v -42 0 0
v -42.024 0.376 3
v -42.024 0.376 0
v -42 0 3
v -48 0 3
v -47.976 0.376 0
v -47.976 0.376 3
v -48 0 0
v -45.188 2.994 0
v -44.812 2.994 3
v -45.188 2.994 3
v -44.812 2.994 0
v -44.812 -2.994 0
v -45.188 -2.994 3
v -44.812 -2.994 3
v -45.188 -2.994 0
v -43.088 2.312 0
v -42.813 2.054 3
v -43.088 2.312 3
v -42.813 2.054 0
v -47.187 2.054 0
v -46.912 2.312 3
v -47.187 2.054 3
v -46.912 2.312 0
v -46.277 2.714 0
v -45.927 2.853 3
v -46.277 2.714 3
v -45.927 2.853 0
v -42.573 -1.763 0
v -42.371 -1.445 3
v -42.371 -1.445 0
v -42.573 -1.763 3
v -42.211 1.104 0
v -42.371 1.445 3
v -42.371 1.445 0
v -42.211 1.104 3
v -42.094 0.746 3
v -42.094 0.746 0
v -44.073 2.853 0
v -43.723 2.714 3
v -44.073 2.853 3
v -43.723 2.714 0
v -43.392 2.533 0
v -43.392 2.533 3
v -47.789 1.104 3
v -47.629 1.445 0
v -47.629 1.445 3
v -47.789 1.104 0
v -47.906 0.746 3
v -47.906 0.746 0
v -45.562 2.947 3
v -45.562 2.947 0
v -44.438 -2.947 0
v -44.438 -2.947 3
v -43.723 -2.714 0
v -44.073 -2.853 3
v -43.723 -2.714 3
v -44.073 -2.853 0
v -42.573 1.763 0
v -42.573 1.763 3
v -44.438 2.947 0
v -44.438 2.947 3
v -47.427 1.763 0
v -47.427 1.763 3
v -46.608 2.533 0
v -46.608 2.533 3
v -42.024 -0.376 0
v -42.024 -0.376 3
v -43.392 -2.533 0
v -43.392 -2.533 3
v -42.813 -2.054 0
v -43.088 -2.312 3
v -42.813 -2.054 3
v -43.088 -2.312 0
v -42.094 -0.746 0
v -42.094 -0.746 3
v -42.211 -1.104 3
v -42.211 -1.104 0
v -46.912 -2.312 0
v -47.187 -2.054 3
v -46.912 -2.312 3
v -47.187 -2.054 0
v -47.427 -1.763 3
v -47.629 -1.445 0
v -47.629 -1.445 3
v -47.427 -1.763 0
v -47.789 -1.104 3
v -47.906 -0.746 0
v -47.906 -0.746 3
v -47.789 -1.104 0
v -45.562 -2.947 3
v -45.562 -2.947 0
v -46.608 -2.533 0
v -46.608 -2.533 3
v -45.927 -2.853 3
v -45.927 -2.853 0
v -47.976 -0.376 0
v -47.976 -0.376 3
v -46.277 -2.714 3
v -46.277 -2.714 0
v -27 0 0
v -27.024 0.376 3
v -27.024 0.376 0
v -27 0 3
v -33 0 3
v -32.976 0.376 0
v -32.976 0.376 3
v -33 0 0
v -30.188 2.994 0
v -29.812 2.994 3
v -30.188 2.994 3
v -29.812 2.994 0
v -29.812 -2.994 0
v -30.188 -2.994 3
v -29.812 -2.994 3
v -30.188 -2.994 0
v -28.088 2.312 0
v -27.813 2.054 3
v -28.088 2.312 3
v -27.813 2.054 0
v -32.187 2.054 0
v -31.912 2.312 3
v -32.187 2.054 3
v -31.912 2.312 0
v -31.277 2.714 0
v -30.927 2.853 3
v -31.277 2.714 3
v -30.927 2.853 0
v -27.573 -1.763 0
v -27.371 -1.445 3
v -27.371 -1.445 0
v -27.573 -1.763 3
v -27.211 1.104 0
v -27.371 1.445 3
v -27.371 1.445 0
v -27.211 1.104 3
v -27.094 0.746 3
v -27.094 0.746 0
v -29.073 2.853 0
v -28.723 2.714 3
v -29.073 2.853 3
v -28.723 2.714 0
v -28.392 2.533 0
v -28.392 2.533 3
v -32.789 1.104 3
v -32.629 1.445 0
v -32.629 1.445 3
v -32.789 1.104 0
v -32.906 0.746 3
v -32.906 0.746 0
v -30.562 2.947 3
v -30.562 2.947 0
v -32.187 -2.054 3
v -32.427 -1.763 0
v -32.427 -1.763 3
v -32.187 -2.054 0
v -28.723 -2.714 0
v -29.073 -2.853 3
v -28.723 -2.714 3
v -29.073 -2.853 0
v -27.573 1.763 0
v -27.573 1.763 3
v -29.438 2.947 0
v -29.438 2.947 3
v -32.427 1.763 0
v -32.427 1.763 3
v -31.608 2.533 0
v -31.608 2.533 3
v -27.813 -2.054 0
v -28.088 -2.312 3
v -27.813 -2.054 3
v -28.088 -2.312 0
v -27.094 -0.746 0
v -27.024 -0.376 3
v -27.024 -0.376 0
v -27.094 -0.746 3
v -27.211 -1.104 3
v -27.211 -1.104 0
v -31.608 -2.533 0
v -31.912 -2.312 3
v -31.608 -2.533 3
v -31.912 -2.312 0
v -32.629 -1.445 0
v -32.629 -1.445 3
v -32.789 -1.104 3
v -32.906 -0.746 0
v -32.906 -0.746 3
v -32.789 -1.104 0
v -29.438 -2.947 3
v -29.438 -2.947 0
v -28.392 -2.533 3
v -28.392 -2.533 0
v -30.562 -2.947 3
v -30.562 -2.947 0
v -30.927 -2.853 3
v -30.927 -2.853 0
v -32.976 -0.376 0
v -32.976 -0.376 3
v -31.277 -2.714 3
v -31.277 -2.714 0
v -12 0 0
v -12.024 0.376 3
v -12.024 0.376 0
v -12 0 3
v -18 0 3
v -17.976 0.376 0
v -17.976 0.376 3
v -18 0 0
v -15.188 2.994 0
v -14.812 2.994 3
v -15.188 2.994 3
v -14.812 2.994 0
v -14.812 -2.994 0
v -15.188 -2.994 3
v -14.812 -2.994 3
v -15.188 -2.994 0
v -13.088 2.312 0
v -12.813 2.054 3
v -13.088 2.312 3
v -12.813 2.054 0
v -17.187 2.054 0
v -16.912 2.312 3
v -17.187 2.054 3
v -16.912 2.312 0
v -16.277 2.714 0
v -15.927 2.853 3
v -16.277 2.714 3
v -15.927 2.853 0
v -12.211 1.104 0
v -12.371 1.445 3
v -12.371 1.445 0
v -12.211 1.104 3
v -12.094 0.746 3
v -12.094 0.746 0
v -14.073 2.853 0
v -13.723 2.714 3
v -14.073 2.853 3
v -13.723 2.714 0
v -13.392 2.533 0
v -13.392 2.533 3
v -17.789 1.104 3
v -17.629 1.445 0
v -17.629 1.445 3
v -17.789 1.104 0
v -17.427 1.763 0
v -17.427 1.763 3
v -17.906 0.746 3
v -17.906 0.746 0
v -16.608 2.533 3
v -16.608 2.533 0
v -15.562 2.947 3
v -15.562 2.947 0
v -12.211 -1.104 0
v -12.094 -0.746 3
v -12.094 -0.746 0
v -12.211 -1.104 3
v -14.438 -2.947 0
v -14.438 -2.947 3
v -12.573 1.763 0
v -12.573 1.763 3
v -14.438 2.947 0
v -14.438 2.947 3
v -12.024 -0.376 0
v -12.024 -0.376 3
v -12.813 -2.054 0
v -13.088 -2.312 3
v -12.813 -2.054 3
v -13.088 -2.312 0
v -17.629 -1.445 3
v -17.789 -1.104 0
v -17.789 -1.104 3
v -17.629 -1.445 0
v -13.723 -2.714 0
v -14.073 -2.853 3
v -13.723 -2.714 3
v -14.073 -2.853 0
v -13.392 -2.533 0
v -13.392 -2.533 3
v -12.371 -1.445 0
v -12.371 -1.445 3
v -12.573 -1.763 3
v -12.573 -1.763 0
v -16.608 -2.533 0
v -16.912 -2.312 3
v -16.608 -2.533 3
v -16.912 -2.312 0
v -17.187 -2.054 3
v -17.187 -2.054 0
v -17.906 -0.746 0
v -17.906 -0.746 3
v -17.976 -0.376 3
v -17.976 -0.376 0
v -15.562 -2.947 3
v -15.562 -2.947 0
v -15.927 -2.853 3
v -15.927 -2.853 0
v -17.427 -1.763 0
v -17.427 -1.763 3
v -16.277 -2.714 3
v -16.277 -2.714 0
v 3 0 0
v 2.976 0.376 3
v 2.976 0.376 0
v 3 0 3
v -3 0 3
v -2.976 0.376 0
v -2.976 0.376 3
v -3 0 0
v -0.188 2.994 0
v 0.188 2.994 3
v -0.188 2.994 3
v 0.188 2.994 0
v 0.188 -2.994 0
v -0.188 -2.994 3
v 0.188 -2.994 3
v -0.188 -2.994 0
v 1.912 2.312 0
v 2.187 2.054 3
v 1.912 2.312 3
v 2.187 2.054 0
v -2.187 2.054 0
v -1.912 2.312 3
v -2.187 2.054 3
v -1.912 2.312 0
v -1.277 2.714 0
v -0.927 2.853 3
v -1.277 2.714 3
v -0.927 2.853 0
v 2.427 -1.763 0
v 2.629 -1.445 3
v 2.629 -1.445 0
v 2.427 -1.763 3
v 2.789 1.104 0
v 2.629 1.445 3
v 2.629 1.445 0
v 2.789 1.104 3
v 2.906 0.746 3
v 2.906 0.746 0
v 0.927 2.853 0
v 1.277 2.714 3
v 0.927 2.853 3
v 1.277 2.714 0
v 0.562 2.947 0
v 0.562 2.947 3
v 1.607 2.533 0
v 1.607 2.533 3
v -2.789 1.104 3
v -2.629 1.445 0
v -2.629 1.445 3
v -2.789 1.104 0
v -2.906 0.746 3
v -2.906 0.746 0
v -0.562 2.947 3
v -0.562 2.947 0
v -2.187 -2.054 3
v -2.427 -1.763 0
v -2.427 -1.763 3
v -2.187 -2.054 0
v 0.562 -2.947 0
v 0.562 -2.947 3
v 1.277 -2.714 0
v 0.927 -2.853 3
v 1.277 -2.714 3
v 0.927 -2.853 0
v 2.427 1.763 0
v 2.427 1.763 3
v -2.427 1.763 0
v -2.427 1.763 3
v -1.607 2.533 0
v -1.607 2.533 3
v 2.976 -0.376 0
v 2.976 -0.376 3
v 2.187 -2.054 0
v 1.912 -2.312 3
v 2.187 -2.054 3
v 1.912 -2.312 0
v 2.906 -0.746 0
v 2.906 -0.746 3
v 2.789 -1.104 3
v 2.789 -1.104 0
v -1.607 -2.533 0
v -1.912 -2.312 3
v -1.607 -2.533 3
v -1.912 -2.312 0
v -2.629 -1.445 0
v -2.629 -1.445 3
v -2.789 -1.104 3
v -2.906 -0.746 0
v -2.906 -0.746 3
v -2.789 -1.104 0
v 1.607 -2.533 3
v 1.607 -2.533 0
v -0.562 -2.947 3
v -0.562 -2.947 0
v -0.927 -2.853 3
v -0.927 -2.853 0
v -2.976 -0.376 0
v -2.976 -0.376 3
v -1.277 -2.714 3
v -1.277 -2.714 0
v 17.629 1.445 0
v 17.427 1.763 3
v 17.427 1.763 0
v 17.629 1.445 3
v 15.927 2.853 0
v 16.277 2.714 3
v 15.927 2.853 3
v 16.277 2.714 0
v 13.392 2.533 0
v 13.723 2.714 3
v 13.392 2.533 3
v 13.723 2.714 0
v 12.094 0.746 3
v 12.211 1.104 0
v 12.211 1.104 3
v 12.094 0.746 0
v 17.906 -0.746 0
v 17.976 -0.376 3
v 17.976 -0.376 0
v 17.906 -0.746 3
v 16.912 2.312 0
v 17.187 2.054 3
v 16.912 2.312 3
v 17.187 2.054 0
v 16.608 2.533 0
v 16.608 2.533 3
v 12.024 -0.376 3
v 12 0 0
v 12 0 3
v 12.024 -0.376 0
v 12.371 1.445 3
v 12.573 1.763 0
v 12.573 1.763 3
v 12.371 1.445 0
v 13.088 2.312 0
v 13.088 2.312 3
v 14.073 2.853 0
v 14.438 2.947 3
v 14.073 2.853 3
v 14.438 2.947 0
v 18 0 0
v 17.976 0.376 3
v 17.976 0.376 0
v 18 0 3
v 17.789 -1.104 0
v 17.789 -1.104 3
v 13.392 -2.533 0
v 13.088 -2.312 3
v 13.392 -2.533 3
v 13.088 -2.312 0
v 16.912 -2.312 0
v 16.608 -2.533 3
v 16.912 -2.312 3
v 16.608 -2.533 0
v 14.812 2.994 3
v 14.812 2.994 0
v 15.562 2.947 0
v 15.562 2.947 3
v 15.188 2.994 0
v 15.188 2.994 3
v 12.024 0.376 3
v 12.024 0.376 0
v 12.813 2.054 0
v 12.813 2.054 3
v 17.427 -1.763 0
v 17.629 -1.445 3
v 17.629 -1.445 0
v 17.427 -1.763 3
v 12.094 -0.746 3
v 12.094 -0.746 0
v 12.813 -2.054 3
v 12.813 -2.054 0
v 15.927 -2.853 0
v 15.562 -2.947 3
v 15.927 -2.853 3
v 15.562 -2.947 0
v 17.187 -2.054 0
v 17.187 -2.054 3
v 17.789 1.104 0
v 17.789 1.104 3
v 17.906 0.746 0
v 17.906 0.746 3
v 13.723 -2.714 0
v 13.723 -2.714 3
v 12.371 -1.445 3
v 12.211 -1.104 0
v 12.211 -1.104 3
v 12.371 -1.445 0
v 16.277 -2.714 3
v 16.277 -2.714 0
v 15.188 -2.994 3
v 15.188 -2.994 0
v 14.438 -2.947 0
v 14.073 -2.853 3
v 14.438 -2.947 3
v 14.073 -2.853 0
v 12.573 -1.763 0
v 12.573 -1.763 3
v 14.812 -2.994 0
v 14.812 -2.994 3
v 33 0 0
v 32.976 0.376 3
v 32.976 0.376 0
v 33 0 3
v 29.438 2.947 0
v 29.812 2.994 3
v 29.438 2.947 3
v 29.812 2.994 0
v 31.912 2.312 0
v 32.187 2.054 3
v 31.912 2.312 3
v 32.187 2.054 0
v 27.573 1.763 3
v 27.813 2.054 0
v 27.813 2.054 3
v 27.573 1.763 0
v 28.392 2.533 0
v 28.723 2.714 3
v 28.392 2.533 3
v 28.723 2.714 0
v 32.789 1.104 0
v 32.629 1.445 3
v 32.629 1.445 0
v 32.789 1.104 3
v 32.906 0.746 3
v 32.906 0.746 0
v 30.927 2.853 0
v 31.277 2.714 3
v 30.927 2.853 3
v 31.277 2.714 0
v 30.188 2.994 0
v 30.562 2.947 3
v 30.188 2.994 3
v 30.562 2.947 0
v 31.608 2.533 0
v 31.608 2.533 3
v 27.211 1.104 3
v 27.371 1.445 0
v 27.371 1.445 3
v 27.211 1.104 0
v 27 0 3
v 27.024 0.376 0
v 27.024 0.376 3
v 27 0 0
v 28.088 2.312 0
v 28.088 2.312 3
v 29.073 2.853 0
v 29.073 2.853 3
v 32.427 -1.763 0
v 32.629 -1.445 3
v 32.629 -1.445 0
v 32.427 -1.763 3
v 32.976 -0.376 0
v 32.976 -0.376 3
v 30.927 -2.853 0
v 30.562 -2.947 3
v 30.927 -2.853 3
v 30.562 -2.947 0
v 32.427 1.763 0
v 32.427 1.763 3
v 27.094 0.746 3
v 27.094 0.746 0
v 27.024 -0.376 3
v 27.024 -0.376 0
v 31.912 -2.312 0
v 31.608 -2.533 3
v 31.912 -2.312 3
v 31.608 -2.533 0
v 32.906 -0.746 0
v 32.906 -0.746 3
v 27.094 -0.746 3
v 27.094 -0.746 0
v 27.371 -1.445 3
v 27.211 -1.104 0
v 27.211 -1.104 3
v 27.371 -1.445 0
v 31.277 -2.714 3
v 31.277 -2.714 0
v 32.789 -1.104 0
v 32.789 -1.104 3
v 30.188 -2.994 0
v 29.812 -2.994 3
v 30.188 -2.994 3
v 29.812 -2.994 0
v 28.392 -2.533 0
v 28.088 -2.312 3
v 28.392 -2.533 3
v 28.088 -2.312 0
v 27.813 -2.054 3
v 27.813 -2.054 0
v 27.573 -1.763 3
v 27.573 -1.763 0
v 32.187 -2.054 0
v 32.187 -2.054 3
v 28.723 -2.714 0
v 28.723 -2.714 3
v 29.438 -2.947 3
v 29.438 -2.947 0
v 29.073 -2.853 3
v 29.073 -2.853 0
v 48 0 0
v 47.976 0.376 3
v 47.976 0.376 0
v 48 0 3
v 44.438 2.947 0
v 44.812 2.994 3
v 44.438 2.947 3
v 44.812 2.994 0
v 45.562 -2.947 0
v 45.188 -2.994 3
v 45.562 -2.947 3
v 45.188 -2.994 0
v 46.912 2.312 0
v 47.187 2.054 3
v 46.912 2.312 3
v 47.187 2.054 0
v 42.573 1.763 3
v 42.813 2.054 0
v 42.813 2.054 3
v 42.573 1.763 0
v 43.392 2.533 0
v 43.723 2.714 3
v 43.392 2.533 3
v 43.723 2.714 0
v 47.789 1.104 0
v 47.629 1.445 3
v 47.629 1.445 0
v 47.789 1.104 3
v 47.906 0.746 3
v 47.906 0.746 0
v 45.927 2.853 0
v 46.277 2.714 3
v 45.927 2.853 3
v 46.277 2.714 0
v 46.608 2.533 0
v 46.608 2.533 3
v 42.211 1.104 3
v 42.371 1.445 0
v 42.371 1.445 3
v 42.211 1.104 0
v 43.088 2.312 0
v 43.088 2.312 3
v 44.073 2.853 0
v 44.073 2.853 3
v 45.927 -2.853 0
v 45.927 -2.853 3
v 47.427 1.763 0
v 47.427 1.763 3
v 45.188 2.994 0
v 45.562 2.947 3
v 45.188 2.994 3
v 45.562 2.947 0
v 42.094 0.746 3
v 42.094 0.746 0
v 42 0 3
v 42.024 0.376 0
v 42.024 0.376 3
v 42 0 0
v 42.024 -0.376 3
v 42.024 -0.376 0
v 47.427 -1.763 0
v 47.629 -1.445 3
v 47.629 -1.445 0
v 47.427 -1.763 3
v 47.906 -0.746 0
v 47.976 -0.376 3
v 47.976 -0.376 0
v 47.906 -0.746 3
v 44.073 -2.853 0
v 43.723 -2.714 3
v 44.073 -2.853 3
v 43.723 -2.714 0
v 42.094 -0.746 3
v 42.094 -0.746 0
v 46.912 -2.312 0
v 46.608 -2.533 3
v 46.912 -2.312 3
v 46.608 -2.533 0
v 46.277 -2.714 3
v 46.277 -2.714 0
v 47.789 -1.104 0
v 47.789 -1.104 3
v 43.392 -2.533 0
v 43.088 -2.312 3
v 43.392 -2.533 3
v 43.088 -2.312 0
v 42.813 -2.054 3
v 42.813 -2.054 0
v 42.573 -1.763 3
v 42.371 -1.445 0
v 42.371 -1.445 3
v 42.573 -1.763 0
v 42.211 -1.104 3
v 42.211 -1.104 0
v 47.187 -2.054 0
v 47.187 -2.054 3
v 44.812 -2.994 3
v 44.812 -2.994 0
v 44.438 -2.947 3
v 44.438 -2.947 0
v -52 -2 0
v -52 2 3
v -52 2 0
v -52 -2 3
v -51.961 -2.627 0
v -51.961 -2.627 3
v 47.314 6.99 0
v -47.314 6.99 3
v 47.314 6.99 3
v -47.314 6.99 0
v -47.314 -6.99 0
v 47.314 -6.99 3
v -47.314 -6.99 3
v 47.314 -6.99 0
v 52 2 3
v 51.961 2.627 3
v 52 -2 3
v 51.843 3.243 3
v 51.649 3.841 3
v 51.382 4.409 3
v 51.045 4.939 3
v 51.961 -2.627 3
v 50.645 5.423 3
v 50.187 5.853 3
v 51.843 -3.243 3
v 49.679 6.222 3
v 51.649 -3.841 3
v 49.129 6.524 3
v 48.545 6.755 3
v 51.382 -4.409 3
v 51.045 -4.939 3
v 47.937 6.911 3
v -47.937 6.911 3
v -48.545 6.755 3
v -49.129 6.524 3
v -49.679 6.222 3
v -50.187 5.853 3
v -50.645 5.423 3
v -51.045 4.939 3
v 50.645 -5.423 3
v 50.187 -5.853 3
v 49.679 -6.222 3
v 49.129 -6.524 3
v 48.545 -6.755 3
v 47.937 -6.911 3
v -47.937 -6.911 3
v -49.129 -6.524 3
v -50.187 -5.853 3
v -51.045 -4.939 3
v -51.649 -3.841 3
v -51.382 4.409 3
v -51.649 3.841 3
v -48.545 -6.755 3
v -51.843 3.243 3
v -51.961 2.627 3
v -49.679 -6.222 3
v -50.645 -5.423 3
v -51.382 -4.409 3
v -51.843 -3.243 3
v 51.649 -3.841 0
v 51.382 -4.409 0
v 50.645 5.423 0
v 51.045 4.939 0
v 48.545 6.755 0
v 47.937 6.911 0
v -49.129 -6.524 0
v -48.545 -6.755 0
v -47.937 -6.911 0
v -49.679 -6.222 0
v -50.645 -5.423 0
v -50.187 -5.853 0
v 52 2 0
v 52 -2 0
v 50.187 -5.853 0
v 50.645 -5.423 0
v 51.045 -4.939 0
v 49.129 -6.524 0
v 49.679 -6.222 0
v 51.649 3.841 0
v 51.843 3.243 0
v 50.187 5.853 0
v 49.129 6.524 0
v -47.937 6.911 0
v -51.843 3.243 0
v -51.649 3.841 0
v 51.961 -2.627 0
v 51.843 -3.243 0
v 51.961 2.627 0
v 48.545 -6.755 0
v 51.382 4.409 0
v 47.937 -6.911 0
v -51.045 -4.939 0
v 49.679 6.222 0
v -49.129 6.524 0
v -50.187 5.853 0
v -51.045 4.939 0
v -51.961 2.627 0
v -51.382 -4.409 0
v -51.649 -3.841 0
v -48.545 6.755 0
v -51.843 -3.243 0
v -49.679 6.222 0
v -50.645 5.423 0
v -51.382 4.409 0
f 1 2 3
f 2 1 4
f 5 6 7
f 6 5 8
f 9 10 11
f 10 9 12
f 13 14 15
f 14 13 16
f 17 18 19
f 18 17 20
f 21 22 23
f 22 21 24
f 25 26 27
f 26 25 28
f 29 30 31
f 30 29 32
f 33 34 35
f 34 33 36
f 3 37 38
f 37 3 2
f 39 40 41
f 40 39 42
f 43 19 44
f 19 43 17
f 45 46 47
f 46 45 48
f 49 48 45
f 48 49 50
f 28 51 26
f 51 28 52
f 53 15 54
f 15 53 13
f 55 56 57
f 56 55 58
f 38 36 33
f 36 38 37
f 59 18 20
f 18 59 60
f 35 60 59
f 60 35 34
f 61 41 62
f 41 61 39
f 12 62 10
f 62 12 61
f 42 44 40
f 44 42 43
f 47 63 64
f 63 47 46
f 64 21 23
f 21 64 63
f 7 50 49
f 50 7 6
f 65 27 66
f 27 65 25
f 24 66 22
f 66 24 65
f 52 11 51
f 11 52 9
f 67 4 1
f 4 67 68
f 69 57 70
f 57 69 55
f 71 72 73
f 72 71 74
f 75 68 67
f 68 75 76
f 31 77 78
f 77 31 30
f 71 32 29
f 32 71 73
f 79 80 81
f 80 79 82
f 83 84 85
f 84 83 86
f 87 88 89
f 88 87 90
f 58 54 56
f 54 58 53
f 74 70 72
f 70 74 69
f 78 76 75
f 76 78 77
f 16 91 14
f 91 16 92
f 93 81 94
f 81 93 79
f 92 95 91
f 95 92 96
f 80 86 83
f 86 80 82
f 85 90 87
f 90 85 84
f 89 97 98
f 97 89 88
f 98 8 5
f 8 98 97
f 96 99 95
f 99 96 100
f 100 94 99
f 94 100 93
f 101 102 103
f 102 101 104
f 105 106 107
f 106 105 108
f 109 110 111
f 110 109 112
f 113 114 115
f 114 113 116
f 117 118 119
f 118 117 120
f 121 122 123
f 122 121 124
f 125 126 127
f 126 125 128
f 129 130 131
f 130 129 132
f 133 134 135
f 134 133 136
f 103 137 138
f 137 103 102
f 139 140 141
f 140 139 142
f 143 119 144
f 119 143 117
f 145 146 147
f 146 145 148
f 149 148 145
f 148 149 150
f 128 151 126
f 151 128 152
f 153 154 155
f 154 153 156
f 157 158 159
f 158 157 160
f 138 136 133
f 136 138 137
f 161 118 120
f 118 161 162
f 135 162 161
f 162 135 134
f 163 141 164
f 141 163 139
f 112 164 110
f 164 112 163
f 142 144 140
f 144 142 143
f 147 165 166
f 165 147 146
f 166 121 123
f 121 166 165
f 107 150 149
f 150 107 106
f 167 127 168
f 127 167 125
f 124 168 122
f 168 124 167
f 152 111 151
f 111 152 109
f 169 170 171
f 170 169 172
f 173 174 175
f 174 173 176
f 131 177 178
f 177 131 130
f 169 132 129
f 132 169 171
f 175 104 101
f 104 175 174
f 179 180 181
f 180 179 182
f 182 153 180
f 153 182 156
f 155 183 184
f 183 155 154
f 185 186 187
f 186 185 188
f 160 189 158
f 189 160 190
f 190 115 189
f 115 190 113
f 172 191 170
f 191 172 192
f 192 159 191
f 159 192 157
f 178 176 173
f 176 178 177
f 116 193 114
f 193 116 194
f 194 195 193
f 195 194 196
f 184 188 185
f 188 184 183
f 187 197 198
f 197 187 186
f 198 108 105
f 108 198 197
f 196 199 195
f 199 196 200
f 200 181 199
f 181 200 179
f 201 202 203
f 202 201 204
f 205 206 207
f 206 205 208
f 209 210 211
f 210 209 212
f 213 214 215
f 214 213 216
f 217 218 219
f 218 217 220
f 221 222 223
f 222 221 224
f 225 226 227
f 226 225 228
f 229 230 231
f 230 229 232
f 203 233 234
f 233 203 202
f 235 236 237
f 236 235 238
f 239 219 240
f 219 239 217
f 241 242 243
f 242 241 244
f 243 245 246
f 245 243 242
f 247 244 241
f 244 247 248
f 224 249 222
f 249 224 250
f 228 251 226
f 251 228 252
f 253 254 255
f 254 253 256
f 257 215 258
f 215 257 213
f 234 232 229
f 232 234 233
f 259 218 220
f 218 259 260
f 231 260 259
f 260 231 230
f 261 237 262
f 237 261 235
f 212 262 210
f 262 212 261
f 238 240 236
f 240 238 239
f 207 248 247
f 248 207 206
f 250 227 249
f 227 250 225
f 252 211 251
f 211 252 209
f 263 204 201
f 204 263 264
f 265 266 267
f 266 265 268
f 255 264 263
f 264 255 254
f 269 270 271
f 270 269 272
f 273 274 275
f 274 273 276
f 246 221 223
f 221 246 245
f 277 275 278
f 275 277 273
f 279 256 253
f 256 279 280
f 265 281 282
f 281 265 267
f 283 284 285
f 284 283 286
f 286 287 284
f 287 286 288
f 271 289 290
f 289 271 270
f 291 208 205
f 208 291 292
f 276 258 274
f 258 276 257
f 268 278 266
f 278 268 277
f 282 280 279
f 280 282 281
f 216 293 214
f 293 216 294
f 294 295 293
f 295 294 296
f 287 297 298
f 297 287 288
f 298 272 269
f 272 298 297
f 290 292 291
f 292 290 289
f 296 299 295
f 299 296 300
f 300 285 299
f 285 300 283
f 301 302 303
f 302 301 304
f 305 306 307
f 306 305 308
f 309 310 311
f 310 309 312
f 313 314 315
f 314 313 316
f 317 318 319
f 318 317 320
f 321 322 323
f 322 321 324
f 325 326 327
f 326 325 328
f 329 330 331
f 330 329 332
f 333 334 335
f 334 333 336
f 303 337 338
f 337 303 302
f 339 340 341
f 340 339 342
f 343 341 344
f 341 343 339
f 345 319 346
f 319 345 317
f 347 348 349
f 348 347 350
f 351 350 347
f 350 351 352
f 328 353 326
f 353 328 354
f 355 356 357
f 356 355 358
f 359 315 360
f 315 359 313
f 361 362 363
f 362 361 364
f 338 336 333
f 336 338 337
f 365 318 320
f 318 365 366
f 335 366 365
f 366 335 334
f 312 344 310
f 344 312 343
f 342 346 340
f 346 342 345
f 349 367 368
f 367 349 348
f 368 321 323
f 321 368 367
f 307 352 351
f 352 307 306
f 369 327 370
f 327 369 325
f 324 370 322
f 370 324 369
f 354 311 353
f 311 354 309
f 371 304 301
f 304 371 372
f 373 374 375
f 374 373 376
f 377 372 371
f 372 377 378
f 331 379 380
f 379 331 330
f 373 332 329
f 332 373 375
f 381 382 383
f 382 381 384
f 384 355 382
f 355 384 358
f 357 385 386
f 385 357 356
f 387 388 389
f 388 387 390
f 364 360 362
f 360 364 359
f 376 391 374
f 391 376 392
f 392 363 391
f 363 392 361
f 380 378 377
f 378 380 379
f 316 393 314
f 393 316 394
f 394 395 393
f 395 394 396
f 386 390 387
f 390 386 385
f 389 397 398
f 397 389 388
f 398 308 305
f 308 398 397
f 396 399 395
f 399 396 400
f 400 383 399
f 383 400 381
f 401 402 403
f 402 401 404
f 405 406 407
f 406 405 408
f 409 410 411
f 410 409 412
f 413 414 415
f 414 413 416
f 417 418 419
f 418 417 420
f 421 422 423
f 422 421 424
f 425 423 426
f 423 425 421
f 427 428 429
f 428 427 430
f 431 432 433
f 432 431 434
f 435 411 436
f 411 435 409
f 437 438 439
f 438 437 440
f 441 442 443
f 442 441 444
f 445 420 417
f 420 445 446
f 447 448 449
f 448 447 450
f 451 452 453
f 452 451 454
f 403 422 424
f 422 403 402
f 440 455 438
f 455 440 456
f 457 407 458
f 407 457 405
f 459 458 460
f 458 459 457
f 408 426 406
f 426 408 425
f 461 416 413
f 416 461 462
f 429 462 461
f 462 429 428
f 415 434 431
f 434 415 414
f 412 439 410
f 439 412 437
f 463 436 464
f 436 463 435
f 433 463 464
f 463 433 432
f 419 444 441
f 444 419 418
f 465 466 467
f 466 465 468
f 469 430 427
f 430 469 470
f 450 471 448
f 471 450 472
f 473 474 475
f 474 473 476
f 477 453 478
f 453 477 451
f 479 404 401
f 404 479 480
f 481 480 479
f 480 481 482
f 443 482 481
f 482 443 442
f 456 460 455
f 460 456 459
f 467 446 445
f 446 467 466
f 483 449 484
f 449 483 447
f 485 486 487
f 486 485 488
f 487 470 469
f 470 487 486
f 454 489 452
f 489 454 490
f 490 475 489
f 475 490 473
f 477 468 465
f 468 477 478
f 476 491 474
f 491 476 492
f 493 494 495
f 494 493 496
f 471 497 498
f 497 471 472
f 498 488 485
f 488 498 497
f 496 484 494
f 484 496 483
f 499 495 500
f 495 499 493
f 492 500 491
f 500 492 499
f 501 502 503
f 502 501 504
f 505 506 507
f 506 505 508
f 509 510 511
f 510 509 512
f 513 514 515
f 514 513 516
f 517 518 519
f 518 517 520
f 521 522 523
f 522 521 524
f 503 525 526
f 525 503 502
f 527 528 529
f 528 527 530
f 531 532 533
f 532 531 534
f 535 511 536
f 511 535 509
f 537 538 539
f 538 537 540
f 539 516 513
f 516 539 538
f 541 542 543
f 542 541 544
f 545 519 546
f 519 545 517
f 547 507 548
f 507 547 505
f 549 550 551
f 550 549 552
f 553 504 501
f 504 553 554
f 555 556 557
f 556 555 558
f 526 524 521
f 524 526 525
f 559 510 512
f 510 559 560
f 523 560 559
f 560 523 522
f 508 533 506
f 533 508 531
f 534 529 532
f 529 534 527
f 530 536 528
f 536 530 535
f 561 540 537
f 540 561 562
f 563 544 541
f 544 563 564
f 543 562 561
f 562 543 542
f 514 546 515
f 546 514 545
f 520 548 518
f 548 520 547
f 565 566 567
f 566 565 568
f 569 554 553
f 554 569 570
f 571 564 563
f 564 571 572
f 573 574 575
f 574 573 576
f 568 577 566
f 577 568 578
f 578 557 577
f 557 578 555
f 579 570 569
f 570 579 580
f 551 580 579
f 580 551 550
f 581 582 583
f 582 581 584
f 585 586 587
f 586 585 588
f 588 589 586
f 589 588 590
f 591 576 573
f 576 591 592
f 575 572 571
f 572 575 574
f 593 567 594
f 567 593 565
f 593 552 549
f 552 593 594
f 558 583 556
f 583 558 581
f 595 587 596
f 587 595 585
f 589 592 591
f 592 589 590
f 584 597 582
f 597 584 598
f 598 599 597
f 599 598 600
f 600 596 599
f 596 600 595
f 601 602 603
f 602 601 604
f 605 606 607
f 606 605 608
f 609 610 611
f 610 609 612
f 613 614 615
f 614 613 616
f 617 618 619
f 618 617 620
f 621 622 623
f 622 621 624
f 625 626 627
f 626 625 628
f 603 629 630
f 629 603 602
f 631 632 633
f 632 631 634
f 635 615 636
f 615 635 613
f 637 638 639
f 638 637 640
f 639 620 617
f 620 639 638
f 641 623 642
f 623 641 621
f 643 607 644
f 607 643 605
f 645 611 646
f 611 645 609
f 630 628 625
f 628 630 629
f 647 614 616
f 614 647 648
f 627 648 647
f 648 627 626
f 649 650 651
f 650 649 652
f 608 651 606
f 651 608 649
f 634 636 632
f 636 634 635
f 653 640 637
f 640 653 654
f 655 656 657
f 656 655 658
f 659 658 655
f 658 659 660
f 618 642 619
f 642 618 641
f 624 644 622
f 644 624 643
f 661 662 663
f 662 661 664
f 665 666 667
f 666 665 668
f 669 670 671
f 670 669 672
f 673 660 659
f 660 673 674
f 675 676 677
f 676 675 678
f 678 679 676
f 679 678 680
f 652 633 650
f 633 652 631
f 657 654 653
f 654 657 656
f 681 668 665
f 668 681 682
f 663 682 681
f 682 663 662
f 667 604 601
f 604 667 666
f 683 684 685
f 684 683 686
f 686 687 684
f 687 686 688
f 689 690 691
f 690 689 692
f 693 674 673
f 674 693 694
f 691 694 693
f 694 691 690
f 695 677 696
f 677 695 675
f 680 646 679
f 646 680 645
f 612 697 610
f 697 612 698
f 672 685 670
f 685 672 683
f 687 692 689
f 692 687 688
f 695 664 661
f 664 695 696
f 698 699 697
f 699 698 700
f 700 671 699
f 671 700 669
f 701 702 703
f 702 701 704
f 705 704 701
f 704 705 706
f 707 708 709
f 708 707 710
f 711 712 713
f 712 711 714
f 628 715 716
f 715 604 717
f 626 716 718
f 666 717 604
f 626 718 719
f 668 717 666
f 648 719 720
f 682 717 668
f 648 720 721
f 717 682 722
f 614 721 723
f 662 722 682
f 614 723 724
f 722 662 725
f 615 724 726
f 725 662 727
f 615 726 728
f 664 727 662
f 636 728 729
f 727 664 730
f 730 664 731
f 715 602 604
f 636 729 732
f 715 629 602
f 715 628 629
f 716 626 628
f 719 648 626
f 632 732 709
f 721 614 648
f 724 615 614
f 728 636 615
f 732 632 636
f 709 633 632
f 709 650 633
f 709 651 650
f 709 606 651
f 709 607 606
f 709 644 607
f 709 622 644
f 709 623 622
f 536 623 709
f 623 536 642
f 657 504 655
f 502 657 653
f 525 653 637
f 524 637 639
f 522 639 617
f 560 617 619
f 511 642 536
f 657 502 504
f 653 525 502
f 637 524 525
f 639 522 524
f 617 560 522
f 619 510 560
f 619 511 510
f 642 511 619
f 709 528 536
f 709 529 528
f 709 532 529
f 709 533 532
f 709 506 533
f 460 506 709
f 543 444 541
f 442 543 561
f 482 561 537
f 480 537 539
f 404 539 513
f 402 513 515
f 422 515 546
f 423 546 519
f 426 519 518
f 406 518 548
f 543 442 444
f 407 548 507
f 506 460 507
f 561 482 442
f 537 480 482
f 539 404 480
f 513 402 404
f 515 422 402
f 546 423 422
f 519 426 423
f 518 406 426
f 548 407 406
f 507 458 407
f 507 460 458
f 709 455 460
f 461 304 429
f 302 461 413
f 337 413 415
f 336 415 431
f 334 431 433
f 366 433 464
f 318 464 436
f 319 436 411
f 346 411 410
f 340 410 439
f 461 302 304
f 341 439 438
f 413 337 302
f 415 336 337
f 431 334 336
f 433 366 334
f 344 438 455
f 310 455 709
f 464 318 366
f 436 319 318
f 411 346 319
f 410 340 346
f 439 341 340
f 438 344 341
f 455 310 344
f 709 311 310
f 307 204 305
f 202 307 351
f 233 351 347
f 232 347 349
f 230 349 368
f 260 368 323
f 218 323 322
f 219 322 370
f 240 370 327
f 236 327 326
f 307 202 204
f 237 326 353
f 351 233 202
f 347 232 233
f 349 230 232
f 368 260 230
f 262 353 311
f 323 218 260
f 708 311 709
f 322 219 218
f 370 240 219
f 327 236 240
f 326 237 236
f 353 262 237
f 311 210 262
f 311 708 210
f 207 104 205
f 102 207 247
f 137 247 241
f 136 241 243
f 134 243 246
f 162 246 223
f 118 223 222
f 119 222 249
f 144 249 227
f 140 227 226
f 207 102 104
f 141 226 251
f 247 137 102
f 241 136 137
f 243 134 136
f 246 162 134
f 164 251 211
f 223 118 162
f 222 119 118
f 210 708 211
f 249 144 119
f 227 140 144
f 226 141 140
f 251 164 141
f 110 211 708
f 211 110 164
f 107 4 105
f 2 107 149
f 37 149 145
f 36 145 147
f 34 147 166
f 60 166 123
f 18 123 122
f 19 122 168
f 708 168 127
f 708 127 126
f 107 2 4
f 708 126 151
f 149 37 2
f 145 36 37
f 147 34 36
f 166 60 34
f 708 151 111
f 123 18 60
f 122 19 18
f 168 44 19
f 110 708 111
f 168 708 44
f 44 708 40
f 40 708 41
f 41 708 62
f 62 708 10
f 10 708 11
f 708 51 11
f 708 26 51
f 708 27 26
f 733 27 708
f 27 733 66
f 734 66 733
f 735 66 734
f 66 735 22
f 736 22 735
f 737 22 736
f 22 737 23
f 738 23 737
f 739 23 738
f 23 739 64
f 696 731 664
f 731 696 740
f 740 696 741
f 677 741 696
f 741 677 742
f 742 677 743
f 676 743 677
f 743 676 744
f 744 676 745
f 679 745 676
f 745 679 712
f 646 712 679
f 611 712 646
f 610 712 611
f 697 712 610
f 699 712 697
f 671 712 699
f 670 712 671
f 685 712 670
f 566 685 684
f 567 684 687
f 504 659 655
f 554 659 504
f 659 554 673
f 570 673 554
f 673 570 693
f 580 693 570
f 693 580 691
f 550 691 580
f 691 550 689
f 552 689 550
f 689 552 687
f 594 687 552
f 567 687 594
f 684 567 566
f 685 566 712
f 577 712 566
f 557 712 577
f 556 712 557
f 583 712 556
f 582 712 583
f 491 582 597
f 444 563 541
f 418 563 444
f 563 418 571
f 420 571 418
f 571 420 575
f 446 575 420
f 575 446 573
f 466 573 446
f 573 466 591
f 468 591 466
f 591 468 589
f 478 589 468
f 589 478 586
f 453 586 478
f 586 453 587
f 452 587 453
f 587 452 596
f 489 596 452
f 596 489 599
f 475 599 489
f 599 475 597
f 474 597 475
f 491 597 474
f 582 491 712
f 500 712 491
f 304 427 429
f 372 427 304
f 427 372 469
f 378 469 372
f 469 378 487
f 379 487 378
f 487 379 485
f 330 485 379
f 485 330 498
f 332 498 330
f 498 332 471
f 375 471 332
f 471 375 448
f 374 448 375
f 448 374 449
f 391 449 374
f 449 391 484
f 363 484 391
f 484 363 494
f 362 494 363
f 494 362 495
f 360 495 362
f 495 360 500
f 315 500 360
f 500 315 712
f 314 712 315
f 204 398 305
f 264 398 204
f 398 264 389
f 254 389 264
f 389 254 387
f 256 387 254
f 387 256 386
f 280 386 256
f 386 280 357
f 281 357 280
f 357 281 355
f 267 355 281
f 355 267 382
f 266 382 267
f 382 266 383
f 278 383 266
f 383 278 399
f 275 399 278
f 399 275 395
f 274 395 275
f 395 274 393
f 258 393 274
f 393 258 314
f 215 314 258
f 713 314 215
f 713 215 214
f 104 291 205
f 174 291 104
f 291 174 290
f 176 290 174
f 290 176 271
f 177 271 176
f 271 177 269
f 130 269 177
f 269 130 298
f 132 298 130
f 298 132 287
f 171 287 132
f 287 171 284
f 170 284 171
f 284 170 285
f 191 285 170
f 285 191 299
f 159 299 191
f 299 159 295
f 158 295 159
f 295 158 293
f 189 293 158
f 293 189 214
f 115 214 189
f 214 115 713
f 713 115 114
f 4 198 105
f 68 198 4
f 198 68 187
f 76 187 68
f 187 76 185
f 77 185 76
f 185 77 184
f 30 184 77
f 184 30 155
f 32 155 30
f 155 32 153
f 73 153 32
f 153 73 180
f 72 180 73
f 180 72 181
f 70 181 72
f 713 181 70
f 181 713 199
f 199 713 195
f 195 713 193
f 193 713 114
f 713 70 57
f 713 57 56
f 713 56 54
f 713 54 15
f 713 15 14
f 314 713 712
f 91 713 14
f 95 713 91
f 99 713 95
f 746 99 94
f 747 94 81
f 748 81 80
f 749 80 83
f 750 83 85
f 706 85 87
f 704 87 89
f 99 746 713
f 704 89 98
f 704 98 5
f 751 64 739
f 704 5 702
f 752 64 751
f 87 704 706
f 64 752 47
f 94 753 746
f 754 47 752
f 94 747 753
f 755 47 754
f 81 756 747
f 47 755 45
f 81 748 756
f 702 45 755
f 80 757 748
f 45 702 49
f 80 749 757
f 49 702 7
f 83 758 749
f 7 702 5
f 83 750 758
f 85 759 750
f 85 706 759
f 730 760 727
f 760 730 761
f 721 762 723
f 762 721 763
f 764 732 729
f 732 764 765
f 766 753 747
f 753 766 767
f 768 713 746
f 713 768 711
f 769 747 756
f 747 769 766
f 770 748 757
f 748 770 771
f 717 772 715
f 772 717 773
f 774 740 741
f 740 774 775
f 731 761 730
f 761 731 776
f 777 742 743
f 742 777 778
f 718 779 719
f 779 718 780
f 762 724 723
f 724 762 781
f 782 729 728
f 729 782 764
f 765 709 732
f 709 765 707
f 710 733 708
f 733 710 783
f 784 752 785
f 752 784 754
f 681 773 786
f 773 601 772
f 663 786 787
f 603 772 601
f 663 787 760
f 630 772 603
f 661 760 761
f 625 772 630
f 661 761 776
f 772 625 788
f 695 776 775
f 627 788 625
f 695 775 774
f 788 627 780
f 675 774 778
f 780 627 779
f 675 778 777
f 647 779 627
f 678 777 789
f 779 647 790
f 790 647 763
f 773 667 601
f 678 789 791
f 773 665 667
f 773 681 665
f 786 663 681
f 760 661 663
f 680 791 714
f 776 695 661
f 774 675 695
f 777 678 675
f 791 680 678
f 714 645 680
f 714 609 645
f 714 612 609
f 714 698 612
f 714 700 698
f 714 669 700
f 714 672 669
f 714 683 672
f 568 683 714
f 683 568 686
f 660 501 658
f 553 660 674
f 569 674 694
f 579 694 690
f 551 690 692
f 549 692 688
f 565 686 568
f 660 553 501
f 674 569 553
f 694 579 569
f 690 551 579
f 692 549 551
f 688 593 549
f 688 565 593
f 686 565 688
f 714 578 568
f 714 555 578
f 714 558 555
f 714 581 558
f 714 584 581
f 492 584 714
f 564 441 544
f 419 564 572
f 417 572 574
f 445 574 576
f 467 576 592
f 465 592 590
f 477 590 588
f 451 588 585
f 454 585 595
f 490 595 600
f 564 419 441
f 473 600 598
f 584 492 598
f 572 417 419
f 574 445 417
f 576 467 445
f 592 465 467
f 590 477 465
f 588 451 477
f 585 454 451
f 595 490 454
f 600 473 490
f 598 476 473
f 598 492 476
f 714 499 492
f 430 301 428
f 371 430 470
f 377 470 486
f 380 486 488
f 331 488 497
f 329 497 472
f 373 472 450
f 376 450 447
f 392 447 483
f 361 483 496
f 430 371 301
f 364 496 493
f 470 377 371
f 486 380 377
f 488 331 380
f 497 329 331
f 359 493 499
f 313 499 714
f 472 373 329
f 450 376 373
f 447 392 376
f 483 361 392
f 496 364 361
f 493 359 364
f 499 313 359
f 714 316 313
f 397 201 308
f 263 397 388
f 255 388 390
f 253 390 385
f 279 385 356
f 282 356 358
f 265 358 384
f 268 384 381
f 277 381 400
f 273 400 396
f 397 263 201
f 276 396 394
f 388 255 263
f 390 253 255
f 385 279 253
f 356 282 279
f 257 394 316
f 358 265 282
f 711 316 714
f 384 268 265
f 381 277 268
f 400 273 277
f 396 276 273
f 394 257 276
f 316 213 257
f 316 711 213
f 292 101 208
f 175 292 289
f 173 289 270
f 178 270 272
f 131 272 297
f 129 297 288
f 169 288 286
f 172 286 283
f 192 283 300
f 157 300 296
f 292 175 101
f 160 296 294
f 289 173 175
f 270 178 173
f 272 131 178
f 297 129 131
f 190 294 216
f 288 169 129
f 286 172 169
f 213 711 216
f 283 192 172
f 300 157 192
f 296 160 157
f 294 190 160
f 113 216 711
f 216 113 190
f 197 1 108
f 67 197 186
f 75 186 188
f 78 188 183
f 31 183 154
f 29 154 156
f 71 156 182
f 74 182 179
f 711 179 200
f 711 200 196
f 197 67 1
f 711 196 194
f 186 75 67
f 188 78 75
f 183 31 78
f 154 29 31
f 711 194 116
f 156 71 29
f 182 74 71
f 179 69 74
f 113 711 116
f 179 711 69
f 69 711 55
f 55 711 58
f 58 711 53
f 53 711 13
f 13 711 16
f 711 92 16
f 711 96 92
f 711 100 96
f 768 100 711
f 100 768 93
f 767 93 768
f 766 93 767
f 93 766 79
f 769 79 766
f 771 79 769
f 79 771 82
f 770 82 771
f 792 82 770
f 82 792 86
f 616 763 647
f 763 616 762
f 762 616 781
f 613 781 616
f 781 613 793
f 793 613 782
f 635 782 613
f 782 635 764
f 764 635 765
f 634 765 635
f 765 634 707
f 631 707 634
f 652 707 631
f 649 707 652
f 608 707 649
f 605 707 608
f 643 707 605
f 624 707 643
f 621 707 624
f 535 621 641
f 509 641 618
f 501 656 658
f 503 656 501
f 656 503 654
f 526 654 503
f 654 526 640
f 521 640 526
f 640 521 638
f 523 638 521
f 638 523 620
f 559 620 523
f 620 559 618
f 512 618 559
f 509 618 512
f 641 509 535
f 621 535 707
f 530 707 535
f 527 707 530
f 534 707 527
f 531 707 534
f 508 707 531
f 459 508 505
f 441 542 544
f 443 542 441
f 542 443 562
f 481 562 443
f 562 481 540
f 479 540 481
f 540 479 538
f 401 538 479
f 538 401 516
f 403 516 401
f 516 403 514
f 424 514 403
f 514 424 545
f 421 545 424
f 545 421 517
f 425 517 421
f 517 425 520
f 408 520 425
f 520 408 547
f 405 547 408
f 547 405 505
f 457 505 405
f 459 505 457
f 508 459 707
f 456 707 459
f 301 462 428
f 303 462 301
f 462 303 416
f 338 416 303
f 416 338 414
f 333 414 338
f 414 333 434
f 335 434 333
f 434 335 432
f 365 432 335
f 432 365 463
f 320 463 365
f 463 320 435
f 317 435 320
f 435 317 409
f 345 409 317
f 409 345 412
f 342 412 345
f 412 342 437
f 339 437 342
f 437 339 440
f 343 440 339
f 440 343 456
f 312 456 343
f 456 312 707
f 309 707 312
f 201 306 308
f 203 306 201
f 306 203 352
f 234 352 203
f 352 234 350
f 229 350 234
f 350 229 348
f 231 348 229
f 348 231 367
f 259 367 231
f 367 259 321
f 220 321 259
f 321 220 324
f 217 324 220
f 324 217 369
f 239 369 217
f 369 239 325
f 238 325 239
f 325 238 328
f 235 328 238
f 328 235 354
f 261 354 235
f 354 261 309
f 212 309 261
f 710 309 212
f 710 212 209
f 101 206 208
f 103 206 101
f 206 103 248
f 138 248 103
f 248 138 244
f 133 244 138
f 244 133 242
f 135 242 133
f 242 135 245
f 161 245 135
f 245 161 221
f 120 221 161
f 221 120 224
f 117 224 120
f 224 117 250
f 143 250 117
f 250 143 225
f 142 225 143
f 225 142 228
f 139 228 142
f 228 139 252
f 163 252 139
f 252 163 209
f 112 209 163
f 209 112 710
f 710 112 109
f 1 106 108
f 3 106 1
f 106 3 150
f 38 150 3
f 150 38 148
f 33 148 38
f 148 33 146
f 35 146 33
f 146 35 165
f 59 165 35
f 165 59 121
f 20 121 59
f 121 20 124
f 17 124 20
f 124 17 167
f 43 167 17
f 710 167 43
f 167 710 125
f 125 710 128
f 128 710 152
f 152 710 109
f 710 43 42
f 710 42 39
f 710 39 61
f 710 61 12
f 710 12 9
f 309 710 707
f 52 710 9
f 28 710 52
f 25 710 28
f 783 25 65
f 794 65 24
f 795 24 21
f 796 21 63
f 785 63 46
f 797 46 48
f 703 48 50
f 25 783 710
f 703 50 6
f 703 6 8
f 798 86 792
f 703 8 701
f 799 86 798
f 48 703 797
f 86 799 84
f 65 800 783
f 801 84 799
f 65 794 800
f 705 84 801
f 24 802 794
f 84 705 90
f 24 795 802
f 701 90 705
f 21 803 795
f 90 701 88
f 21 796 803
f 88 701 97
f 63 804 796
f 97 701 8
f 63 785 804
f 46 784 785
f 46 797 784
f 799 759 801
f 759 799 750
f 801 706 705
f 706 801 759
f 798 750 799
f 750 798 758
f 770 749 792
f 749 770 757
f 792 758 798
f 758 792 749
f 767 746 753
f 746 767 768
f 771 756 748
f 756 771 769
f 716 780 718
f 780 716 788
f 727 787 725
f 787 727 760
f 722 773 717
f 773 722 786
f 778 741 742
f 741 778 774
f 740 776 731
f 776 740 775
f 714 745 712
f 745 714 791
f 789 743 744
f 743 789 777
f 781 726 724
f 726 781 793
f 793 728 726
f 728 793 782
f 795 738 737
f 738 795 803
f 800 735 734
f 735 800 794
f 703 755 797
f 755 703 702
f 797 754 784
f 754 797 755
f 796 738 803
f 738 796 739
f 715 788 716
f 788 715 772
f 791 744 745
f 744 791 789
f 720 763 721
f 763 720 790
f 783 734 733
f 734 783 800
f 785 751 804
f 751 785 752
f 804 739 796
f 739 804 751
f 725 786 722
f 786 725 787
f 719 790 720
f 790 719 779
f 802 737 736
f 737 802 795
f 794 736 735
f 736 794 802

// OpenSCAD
$fn = 50;


difference() {
	union() {
		hull() {
			translate(v = [-47.0000000000, 2.0000000000, 0]) {
				cylinder(h = 3, r = 5);
			}
			translate(v = [47.0000000000, 2.0000000000, 0]) {
				cylinder(h = 3, r = 5);
			}
			translate(v = [-47.0000000000, -2.0000000000, 0]) {
				cylinder(h = 3, r = 5);
			}
			translate(v = [47.0000000000, -2.0000000000, 0]) {
				cylinder(h = 3, r = 5);
			}
		}
	}
	union() {
		translate(v = [-45.0000000000, 0.0000000000, 0]) {
			translate(v = [0, 0, -100]) {
				cylinder(h = 200, r = 3.0000000000);
			}
		}
		translate(v = [-30.0000000000, 0.0000000000, 0]) {
			translate(v = [0, 0, -100]) {
				cylinder(h = 200, r = 3.0000000000);
			}
		}
		translate(v = [-15.0000000000, 0.0000000000, 0]) {
			translate(v = [0, 0, -100]) {
				cylinder(h = 200, r = 3.0000000000);
			}
		}
		translate(v = [0, 0, -100]) {
			cylinder(h = 200, r = 3.0000000000);
		}
		translate(v = [15.0000000000, 0.0000000000, 0]) {
			translate(v = [0, 0, -100]) {
				cylinder(h = 200, r = 3.0000000000);
			}
		}
		translate(v = [30.0000000000, 0.0000000000, 0]) {
			translate(v = [0, 0, -100]) {
				cylinder(h = 200, r = 3.0000000000);
			}
		}
		translate(v = [45.0000000000, 0.0000000000, 0]) {
			translate(v = [0, 0, -100]) {
				cylinder(h = 200, r = 3.0000000000);
			}
		}
	}
}
